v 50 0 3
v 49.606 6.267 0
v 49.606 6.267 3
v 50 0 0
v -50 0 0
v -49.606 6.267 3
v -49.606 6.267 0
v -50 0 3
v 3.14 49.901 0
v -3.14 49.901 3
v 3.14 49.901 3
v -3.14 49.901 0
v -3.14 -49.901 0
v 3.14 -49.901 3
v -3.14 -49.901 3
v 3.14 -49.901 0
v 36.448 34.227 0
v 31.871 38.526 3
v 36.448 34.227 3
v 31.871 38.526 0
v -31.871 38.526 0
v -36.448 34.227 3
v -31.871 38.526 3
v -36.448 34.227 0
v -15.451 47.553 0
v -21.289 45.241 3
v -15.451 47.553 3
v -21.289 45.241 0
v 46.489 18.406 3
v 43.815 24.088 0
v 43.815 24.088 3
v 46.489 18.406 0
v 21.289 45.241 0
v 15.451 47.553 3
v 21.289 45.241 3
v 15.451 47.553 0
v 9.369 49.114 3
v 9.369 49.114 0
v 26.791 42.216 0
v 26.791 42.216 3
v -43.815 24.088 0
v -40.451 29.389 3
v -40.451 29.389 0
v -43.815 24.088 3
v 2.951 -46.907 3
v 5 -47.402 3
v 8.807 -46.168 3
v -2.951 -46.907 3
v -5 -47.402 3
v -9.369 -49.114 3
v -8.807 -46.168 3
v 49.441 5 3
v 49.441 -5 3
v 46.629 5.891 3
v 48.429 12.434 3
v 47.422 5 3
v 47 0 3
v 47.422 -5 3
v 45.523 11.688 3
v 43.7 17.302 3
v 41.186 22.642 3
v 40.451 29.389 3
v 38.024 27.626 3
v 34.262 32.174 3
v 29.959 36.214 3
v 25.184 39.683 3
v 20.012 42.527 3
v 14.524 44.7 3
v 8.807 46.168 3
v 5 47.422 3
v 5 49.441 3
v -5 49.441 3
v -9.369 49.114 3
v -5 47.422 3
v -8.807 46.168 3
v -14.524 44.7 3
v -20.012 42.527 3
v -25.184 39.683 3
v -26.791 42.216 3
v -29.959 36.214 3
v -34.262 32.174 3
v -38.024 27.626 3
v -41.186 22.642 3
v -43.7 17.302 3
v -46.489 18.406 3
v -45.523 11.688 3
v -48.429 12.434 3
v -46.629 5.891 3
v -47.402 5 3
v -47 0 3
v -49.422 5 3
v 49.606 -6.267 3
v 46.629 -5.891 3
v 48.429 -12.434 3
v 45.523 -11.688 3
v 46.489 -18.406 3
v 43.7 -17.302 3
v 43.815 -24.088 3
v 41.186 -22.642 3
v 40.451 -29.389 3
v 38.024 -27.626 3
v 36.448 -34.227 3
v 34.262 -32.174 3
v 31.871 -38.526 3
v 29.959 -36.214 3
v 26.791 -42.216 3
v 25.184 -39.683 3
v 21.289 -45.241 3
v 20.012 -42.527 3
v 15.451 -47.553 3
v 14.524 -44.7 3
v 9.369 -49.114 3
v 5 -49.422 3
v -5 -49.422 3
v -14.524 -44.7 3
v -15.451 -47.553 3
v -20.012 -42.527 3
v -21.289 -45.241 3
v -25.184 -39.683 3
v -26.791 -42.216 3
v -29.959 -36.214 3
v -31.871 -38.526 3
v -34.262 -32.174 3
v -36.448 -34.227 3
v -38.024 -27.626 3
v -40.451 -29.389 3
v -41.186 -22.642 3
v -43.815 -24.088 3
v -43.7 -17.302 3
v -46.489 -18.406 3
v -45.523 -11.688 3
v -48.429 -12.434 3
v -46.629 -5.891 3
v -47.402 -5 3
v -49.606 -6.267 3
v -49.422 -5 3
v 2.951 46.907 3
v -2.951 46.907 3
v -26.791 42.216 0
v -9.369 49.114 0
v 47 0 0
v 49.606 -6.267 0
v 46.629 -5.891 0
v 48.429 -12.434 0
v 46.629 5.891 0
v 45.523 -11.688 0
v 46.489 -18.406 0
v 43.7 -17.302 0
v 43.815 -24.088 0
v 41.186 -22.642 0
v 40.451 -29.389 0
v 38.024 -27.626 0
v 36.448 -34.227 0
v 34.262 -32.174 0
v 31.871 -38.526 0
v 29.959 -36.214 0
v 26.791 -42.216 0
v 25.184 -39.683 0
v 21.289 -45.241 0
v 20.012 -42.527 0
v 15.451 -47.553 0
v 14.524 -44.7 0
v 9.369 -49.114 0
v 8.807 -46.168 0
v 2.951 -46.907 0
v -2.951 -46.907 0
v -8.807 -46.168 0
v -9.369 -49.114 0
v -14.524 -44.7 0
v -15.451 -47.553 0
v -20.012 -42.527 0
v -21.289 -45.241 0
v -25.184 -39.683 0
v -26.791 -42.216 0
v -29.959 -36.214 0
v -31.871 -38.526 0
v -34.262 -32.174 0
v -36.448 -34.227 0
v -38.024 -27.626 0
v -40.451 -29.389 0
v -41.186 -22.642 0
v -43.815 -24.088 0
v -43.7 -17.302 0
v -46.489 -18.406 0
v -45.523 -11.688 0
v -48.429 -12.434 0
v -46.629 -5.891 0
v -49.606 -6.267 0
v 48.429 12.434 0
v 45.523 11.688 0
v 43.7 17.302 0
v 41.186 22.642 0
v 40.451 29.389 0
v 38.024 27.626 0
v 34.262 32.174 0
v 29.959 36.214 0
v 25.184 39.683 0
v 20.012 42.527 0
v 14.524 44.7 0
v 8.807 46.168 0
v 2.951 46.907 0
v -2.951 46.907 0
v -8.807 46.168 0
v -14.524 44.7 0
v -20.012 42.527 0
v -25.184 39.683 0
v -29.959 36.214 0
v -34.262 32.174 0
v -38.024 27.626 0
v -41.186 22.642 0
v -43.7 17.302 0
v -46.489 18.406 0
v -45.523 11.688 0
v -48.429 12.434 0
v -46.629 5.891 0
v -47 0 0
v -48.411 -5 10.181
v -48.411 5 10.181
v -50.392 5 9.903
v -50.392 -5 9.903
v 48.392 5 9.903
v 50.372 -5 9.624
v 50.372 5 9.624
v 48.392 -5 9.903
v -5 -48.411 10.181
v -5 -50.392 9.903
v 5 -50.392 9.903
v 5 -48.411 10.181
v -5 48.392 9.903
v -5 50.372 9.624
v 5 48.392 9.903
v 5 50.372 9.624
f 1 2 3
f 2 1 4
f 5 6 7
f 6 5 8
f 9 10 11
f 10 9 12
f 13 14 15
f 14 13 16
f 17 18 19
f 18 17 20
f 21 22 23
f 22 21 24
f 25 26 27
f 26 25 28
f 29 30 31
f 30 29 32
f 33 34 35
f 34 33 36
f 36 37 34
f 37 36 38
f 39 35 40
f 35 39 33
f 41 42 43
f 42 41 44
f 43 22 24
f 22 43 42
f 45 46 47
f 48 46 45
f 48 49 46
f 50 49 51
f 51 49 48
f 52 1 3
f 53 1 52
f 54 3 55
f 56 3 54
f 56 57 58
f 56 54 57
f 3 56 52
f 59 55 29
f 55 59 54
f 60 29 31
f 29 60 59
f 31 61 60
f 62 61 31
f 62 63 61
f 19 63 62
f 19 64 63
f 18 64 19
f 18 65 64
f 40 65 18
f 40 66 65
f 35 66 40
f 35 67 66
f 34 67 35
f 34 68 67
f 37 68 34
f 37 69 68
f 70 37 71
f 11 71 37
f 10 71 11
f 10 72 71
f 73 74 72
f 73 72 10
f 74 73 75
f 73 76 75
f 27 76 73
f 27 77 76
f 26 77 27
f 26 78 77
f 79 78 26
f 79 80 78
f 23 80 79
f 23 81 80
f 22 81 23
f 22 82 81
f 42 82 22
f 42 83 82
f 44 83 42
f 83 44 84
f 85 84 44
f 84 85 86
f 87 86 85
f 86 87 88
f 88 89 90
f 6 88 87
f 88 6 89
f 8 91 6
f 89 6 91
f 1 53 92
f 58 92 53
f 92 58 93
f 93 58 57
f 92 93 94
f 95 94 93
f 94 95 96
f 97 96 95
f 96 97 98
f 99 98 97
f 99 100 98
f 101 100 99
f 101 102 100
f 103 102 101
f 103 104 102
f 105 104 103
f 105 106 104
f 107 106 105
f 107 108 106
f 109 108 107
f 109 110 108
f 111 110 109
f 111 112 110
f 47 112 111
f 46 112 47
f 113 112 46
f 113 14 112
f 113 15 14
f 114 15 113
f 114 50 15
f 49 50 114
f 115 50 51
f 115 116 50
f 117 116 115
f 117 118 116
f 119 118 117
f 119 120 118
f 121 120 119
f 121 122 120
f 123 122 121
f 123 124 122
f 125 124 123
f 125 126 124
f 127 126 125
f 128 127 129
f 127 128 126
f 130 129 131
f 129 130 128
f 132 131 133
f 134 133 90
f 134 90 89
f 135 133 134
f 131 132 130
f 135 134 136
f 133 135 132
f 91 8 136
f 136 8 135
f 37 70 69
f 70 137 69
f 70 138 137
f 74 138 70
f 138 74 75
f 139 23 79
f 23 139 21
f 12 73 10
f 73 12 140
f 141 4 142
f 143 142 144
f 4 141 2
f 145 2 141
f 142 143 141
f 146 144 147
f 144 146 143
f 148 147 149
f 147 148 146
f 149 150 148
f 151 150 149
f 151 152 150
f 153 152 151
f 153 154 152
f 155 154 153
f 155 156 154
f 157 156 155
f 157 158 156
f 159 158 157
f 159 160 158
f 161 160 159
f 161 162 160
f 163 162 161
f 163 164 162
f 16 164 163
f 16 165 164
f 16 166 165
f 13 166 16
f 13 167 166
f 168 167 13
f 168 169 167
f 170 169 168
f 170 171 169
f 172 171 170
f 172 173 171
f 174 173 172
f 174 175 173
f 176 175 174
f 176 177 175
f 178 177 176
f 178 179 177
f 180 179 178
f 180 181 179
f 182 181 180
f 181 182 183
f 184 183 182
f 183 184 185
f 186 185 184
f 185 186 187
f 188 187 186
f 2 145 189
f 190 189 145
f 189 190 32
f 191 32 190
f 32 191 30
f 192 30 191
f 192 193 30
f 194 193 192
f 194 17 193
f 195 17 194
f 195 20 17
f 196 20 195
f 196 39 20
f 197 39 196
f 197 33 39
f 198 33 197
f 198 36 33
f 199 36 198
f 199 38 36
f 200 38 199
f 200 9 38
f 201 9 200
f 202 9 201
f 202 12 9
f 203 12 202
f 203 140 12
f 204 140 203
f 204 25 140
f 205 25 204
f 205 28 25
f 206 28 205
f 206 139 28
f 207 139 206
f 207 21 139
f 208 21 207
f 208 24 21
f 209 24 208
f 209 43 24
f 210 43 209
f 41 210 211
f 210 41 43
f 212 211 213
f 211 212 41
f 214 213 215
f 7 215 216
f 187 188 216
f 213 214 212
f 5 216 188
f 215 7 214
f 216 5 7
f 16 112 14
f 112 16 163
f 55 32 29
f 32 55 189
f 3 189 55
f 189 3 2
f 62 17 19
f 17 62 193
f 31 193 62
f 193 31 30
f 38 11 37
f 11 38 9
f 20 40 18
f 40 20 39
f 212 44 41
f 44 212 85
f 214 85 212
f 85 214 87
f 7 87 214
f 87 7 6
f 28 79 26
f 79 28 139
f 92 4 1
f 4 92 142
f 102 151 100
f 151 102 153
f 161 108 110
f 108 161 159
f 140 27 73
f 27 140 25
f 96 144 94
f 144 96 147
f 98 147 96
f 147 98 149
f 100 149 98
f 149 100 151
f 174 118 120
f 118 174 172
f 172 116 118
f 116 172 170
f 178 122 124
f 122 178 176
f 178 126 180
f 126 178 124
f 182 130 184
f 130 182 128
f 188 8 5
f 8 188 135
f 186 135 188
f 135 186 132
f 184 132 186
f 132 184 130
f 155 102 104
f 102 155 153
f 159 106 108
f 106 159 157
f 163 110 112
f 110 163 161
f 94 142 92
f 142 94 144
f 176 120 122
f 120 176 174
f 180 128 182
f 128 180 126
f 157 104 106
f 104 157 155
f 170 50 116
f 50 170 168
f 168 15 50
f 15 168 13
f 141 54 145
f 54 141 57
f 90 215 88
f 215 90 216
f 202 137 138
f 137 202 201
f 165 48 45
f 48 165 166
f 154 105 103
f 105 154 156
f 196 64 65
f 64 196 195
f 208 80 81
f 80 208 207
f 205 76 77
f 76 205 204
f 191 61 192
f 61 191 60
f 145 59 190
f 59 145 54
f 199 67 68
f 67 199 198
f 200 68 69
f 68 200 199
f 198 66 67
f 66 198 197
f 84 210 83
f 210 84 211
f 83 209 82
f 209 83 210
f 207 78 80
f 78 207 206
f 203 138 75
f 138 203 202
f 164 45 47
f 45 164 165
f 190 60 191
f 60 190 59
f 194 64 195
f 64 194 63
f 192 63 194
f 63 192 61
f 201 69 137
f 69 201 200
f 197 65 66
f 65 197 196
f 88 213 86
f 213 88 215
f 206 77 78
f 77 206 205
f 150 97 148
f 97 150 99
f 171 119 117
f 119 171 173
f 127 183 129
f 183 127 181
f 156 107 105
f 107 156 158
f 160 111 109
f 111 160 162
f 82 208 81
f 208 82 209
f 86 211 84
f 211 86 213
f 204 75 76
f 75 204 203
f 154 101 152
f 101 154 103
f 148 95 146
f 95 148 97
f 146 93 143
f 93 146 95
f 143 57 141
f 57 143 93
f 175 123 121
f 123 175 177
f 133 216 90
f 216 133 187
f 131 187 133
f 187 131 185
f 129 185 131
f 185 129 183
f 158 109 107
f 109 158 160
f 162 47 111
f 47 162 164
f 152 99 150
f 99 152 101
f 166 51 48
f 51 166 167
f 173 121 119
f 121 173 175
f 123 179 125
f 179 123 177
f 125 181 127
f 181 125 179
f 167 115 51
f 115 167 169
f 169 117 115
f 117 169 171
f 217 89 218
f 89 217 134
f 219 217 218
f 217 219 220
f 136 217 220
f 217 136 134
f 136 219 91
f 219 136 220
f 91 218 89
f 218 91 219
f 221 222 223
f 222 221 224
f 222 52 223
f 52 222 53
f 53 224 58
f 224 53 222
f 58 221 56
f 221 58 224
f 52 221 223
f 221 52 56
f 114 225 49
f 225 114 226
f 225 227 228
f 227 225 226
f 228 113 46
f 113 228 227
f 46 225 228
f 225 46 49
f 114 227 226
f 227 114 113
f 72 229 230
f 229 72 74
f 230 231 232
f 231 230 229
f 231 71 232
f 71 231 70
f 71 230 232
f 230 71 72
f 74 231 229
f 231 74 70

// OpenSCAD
$fn=50;

difference() {
    cylinder(r=50, h=3);
    translate([0,0,-1])
     cylinder(r=47, h=5);
}

difference() {
translate([-49,-5,0])
 rotate([0,-8,0])
  cube(size=[2,10,10]);

translate([-50,-6,-5])
 #cube(size=[4,12,5]);
}

difference() {
translate([47,-5,0])
 rotate([0,8,0])
  cube(size=[2,10,10]);
    
translate([46,-6,-5])
 #cube(size=[4,12,5]);
}


difference() {
translate([-5,-49,0])
 rotate([8,0,0])
  cube(size=[10,2,10]);

translate([-6,-50,-5])
 #cube(size=[12,4,5]);
}

difference() {
translate([-5,47,0])
 rotate([-8,0,0])
  cube(size=[10,2,10]);
    
translate([-6,46,-5])
 #cube(size=[12,4,5]);
}
